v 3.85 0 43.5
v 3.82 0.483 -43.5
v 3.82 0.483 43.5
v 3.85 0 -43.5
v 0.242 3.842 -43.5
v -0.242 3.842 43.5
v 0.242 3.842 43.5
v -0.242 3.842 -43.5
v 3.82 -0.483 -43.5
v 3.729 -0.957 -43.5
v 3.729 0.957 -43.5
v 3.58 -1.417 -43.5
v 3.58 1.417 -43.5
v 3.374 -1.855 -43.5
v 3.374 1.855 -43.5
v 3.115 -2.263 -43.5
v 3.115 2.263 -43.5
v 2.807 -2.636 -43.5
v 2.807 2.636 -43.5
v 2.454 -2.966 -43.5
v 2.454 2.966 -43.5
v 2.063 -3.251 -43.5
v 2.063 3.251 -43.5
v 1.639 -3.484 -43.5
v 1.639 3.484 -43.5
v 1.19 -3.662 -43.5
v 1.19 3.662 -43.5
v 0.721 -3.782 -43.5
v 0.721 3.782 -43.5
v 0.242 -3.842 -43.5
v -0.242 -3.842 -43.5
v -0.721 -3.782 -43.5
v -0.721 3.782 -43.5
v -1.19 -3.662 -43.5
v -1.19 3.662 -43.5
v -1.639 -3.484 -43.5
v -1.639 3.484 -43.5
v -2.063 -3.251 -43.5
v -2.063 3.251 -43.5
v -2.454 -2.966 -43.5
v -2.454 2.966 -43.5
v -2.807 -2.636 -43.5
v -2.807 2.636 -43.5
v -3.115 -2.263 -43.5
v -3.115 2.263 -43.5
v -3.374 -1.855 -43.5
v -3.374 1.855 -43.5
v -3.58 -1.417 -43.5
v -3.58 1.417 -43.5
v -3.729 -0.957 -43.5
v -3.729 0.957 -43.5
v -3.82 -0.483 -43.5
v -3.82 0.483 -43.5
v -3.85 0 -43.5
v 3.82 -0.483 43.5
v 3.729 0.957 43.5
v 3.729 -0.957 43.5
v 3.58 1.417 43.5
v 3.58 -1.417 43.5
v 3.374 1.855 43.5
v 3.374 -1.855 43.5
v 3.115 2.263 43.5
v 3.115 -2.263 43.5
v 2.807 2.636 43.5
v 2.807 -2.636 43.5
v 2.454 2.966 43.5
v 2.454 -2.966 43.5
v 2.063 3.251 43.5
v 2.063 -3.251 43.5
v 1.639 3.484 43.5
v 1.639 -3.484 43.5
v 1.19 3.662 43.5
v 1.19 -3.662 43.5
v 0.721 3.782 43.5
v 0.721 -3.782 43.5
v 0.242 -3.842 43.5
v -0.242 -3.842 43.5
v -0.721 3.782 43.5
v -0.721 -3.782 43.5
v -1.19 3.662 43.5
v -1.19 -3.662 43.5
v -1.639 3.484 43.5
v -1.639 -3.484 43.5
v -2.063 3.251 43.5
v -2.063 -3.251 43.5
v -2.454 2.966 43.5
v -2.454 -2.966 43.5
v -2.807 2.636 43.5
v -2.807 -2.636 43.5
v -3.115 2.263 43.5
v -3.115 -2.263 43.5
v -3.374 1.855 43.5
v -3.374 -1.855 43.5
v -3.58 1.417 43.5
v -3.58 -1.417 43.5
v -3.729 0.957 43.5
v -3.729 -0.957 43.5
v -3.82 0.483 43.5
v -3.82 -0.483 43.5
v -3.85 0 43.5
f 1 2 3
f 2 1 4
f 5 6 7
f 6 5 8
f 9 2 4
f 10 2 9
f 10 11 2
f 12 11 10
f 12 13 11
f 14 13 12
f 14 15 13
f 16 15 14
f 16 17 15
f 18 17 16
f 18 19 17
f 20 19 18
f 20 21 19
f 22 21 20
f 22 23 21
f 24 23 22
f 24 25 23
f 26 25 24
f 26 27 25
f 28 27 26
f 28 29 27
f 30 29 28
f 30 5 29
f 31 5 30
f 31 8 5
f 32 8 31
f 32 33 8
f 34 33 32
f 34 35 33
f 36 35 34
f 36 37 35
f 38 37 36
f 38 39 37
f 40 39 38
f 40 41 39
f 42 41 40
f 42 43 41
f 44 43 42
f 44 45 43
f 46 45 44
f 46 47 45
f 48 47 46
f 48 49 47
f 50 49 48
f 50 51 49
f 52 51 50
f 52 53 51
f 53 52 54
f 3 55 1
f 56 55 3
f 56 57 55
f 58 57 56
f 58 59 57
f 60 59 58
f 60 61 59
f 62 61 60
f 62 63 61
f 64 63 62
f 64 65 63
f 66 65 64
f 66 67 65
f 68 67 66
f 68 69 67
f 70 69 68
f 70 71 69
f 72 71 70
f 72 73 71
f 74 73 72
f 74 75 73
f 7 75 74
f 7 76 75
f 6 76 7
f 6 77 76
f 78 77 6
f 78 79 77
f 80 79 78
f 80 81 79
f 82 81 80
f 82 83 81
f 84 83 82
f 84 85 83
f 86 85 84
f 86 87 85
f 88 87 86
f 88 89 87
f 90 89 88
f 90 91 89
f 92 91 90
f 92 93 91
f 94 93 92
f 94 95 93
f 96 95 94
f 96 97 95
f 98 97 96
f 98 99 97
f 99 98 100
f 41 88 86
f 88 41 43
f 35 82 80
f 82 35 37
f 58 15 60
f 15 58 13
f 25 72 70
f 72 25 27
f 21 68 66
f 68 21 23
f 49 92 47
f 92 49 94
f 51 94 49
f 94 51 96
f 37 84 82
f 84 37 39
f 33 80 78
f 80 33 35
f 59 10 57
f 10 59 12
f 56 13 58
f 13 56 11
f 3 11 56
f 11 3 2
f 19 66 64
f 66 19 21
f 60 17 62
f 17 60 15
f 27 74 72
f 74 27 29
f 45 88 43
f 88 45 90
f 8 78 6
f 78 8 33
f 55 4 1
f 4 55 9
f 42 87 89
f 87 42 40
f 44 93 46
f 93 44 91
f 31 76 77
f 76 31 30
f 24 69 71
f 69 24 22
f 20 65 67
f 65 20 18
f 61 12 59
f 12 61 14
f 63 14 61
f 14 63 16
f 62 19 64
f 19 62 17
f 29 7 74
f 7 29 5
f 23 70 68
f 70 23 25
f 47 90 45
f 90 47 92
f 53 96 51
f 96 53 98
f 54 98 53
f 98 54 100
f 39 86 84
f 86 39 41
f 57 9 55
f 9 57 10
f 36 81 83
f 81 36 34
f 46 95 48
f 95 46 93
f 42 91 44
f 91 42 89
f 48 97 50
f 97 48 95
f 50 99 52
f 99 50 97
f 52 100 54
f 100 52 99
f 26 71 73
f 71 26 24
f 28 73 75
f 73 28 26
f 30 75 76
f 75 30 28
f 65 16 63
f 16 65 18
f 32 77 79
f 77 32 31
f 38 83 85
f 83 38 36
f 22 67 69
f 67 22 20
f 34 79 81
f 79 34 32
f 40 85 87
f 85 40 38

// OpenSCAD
$fn = 50;


difference() {
	union() {
		translate(v = [0, 0, -43.5000000000]) {
			cylinder(h = 87, r = 3.8500000000);
		}
	}
	union() {
		translate(v = [0, 0, -100.0000000000]) {
			cylinder(h = 200, r = 0);
		}
	}
}
